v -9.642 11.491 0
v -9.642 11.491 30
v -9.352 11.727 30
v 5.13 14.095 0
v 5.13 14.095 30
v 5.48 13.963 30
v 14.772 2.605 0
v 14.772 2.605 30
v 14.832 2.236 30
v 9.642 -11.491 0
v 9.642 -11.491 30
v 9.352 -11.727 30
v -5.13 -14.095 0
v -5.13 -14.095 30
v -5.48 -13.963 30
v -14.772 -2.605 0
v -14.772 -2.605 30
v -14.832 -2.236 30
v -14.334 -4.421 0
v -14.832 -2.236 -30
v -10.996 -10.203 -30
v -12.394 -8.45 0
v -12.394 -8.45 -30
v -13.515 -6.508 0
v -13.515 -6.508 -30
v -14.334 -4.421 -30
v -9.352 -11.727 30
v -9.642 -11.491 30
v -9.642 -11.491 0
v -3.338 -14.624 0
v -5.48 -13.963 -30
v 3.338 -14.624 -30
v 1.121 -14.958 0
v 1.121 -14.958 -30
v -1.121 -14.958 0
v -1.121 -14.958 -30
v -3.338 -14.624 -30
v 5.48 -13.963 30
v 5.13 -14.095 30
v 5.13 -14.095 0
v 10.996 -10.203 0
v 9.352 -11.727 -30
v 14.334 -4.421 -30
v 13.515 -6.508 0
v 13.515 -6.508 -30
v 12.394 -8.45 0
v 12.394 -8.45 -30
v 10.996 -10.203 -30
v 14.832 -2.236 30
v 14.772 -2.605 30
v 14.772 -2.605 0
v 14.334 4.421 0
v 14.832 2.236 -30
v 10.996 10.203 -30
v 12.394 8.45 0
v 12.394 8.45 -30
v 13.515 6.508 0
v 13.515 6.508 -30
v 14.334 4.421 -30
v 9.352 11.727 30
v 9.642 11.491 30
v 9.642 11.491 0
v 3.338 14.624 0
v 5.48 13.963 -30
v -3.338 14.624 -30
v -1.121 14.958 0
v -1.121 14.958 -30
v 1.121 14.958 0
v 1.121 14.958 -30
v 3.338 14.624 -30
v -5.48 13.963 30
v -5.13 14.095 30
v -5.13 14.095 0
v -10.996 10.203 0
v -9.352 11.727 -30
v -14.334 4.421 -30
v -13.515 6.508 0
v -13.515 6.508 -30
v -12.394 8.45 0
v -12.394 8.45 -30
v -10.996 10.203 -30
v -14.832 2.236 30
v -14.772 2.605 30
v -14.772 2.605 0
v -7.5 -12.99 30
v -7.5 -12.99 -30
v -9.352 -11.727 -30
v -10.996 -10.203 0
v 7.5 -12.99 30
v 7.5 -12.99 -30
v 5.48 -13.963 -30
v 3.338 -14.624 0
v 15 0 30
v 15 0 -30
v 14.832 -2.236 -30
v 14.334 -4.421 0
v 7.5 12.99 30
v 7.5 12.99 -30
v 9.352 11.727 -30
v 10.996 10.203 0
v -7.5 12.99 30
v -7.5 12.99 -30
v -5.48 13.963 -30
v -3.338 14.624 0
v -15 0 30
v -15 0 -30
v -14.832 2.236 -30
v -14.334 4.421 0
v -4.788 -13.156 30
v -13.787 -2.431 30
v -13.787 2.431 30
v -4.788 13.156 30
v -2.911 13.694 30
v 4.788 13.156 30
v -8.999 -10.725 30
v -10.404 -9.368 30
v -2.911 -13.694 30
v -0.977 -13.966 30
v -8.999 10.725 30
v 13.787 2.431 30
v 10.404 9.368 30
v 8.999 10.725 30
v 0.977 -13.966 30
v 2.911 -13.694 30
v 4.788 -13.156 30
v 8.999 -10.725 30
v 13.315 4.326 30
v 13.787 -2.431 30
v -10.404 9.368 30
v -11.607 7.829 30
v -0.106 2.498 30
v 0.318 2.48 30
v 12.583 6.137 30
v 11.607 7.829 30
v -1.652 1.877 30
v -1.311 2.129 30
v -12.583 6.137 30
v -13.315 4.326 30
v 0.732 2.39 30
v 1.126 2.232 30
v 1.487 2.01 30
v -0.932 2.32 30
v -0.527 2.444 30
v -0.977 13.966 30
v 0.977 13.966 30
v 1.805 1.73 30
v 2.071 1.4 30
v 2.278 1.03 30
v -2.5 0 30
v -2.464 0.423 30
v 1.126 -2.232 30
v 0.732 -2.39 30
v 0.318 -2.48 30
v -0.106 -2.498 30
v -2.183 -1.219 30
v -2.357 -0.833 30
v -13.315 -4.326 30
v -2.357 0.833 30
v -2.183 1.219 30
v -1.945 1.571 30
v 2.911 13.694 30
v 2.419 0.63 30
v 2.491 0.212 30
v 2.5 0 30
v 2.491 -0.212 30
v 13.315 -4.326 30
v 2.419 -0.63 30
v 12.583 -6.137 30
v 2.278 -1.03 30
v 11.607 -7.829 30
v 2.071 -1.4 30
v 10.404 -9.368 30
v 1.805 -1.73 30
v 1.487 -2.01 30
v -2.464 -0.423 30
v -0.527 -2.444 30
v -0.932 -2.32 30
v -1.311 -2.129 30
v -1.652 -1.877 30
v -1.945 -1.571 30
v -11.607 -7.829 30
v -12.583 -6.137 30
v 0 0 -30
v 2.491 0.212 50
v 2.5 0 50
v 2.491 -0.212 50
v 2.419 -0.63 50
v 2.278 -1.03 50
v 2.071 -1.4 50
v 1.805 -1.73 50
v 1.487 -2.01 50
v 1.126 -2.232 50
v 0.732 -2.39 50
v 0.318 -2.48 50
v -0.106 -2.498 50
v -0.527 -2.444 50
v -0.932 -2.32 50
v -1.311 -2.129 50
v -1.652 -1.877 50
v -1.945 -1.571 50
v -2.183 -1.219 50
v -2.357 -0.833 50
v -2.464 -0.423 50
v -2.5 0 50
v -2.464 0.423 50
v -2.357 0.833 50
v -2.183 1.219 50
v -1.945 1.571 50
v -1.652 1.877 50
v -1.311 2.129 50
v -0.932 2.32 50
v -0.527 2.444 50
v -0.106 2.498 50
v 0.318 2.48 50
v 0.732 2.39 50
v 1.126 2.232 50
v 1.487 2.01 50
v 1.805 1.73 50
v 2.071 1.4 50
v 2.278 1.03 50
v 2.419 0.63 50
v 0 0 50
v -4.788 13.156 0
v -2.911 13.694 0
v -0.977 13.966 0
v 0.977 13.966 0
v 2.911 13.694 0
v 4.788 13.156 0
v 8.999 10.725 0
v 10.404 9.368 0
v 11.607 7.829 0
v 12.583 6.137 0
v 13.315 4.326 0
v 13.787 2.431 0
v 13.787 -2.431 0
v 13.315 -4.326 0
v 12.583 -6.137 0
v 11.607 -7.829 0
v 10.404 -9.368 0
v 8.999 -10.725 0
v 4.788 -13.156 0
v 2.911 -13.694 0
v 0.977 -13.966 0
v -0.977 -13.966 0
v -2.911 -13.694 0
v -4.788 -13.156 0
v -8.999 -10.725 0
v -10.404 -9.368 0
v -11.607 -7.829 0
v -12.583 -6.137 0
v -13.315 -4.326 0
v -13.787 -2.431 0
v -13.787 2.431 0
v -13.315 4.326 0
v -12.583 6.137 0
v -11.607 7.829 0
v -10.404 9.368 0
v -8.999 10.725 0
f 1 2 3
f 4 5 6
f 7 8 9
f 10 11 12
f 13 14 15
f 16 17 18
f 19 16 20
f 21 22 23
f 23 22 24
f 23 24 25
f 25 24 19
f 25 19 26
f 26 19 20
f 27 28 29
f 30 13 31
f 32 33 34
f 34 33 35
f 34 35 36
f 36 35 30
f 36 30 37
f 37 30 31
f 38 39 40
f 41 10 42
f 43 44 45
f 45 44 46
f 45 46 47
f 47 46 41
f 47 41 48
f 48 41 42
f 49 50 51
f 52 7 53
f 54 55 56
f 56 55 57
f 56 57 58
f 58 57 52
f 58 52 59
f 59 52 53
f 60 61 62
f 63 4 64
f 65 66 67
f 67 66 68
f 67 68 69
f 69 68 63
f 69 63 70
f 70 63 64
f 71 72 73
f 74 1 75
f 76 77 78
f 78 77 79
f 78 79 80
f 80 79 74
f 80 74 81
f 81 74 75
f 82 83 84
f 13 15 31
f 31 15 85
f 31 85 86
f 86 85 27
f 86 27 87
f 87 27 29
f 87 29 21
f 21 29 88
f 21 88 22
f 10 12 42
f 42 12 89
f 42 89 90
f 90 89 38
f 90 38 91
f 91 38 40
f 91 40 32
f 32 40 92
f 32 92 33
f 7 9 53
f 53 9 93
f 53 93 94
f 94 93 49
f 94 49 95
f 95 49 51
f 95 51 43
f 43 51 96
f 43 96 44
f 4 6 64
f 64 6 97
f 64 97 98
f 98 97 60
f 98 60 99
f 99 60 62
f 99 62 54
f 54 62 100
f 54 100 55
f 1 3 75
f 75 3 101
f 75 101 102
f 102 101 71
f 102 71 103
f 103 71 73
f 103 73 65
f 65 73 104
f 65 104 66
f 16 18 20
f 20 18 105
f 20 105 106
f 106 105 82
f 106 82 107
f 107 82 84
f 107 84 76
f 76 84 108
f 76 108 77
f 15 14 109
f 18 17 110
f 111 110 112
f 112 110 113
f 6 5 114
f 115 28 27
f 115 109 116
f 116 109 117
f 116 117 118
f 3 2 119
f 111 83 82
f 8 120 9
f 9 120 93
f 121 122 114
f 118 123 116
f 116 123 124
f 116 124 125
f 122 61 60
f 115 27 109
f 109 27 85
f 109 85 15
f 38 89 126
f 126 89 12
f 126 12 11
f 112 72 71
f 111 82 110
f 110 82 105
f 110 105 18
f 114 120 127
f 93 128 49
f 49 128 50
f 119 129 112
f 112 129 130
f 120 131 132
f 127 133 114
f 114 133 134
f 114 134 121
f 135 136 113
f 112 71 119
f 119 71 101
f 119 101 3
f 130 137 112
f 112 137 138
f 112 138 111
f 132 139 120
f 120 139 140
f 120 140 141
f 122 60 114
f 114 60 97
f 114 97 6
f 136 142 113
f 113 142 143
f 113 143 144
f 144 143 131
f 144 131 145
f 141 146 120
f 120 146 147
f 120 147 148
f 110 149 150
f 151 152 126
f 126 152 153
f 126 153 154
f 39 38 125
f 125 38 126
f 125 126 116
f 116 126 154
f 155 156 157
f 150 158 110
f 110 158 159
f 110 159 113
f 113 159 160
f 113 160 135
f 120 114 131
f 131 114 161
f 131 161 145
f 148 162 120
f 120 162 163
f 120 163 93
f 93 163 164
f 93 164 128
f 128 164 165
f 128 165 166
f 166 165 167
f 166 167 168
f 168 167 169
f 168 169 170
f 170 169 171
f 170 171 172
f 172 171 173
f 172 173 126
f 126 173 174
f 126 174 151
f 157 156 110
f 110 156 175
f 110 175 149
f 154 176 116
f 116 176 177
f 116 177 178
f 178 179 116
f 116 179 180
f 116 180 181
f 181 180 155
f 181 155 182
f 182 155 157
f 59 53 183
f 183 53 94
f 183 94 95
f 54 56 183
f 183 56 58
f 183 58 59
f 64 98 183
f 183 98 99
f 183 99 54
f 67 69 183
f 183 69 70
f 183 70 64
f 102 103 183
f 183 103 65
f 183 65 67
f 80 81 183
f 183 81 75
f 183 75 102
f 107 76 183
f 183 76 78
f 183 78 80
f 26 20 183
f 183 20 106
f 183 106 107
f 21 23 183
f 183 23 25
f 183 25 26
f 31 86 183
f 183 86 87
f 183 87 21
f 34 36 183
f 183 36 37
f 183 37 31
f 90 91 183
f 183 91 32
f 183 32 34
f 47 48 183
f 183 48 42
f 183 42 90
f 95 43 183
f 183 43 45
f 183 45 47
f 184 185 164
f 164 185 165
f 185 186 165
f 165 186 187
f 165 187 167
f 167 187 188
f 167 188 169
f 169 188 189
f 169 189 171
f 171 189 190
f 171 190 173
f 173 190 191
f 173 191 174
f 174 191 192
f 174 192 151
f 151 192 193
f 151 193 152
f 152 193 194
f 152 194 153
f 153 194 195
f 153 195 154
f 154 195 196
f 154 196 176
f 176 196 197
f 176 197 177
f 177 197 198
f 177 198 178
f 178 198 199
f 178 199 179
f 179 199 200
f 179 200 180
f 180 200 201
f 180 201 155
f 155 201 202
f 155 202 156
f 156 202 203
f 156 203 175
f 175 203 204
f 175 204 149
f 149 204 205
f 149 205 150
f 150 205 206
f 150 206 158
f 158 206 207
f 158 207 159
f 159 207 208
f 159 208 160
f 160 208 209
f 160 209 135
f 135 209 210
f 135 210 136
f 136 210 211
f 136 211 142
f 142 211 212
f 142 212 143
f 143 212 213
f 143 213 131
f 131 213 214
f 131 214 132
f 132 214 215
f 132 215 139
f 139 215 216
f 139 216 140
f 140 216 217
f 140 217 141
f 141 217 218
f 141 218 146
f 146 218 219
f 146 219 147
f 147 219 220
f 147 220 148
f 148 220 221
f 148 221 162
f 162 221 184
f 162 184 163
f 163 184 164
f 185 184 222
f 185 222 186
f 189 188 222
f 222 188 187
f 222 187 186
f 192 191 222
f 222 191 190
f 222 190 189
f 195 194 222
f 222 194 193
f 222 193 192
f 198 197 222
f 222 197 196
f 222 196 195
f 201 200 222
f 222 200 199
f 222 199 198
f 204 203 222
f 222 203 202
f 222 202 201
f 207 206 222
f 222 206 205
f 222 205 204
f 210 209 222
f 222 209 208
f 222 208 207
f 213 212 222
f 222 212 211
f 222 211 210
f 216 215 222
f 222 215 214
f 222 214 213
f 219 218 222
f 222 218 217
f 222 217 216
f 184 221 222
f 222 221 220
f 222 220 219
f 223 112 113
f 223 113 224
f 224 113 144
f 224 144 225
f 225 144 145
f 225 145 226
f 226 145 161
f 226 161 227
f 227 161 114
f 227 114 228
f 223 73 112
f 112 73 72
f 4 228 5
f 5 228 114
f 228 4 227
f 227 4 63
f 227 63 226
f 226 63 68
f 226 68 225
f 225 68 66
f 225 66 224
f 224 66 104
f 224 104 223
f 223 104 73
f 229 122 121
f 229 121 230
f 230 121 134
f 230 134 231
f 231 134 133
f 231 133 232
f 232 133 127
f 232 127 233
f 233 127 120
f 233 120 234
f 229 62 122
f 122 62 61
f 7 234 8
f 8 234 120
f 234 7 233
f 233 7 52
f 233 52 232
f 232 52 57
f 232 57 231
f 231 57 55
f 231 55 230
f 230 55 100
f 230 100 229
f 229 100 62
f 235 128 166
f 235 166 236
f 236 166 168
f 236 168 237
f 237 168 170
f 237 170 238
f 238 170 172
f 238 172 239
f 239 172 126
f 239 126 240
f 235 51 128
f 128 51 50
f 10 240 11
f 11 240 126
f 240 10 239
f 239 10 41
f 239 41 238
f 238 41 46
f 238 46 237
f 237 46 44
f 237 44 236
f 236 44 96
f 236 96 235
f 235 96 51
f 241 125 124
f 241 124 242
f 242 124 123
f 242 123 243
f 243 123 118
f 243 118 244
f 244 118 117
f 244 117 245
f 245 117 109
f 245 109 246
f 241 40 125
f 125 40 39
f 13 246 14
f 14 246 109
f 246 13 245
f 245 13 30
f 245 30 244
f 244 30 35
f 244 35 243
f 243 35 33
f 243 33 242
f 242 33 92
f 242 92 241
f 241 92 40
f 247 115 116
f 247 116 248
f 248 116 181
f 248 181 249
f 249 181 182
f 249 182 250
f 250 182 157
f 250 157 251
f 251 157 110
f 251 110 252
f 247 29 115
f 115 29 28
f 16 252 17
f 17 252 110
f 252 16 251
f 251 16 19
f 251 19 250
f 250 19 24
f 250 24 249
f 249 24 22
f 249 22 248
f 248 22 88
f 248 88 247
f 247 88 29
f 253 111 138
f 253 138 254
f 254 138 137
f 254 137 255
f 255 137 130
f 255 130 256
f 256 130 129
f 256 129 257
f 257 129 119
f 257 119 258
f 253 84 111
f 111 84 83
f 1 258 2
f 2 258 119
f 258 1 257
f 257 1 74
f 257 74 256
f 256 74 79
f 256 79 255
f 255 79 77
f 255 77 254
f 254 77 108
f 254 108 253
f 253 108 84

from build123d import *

# Parameters (mm, degrees)
SKETCH1_R           = 15
BOSS_EXTRUDE1_DEPTH = 30
SKETCH2_R           = 2.5
BOSS_EXTRUDE2_DEPTH = 20
CUT_EXTRUDE2_DEPTH  = 30
CIRPATTERN2_COUNT   = 6


with BuildPart() as part:
    # Sketch1 → Boss-Extrude1 (new, symmetric)
    with BuildSketch(Plane.XY):
        with Locations(Location((0, 0, 0), (0, 0, 180))):
            Circle(SKETCH1_R)
    extrude(amount=BOSS_EXTRUDE1_DEPTH, both=True)

    # Sketch2 → Boss-Extrude2 (add)
    with BuildSketch(Plane.XY.offset(30)):
        Circle(SKETCH2_R)
    extrude(amount=BOSS_EXTRUDE2_DEPTH)

    # Sketch4 → Cut-Extrude2 (cut)
    with BuildSketch(Plane.XY.offset(30)):
        with BuildLine():
            Line((-4.788282007, 13.155696691), (-5.13030215, 14.095389312))
            ThreePointArc((-5.13030215, 14.095389312), (0, 15), (5.13030215, 14.095389312))
            Line((5.13030215, 14.095389312), (4.788282007, 13.155696691))
            ThreePointArc((4.788282007, 13.155696691), (0, 14), (-4.788282007, 13.155696691))
        make_face()
    cut_extrude2 = extrude(amount=-CUT_EXTRUDE2_DEPTH, mode=Mode.SUBTRACT)

    # CirPattern2: Cut-Extrude2 ×6 about axis
    cirpattern2_axis = Axis((0, 0, 0), (0, 0, 1))
    for i in range(1, CIRPATTERN2_COUNT):
        add(cut_extrude2.rotate(cirpattern2_axis, i * 360 / CIRPATTERN2_COUNT), mode=Mode.SUBTRACT)


solid = part.part
